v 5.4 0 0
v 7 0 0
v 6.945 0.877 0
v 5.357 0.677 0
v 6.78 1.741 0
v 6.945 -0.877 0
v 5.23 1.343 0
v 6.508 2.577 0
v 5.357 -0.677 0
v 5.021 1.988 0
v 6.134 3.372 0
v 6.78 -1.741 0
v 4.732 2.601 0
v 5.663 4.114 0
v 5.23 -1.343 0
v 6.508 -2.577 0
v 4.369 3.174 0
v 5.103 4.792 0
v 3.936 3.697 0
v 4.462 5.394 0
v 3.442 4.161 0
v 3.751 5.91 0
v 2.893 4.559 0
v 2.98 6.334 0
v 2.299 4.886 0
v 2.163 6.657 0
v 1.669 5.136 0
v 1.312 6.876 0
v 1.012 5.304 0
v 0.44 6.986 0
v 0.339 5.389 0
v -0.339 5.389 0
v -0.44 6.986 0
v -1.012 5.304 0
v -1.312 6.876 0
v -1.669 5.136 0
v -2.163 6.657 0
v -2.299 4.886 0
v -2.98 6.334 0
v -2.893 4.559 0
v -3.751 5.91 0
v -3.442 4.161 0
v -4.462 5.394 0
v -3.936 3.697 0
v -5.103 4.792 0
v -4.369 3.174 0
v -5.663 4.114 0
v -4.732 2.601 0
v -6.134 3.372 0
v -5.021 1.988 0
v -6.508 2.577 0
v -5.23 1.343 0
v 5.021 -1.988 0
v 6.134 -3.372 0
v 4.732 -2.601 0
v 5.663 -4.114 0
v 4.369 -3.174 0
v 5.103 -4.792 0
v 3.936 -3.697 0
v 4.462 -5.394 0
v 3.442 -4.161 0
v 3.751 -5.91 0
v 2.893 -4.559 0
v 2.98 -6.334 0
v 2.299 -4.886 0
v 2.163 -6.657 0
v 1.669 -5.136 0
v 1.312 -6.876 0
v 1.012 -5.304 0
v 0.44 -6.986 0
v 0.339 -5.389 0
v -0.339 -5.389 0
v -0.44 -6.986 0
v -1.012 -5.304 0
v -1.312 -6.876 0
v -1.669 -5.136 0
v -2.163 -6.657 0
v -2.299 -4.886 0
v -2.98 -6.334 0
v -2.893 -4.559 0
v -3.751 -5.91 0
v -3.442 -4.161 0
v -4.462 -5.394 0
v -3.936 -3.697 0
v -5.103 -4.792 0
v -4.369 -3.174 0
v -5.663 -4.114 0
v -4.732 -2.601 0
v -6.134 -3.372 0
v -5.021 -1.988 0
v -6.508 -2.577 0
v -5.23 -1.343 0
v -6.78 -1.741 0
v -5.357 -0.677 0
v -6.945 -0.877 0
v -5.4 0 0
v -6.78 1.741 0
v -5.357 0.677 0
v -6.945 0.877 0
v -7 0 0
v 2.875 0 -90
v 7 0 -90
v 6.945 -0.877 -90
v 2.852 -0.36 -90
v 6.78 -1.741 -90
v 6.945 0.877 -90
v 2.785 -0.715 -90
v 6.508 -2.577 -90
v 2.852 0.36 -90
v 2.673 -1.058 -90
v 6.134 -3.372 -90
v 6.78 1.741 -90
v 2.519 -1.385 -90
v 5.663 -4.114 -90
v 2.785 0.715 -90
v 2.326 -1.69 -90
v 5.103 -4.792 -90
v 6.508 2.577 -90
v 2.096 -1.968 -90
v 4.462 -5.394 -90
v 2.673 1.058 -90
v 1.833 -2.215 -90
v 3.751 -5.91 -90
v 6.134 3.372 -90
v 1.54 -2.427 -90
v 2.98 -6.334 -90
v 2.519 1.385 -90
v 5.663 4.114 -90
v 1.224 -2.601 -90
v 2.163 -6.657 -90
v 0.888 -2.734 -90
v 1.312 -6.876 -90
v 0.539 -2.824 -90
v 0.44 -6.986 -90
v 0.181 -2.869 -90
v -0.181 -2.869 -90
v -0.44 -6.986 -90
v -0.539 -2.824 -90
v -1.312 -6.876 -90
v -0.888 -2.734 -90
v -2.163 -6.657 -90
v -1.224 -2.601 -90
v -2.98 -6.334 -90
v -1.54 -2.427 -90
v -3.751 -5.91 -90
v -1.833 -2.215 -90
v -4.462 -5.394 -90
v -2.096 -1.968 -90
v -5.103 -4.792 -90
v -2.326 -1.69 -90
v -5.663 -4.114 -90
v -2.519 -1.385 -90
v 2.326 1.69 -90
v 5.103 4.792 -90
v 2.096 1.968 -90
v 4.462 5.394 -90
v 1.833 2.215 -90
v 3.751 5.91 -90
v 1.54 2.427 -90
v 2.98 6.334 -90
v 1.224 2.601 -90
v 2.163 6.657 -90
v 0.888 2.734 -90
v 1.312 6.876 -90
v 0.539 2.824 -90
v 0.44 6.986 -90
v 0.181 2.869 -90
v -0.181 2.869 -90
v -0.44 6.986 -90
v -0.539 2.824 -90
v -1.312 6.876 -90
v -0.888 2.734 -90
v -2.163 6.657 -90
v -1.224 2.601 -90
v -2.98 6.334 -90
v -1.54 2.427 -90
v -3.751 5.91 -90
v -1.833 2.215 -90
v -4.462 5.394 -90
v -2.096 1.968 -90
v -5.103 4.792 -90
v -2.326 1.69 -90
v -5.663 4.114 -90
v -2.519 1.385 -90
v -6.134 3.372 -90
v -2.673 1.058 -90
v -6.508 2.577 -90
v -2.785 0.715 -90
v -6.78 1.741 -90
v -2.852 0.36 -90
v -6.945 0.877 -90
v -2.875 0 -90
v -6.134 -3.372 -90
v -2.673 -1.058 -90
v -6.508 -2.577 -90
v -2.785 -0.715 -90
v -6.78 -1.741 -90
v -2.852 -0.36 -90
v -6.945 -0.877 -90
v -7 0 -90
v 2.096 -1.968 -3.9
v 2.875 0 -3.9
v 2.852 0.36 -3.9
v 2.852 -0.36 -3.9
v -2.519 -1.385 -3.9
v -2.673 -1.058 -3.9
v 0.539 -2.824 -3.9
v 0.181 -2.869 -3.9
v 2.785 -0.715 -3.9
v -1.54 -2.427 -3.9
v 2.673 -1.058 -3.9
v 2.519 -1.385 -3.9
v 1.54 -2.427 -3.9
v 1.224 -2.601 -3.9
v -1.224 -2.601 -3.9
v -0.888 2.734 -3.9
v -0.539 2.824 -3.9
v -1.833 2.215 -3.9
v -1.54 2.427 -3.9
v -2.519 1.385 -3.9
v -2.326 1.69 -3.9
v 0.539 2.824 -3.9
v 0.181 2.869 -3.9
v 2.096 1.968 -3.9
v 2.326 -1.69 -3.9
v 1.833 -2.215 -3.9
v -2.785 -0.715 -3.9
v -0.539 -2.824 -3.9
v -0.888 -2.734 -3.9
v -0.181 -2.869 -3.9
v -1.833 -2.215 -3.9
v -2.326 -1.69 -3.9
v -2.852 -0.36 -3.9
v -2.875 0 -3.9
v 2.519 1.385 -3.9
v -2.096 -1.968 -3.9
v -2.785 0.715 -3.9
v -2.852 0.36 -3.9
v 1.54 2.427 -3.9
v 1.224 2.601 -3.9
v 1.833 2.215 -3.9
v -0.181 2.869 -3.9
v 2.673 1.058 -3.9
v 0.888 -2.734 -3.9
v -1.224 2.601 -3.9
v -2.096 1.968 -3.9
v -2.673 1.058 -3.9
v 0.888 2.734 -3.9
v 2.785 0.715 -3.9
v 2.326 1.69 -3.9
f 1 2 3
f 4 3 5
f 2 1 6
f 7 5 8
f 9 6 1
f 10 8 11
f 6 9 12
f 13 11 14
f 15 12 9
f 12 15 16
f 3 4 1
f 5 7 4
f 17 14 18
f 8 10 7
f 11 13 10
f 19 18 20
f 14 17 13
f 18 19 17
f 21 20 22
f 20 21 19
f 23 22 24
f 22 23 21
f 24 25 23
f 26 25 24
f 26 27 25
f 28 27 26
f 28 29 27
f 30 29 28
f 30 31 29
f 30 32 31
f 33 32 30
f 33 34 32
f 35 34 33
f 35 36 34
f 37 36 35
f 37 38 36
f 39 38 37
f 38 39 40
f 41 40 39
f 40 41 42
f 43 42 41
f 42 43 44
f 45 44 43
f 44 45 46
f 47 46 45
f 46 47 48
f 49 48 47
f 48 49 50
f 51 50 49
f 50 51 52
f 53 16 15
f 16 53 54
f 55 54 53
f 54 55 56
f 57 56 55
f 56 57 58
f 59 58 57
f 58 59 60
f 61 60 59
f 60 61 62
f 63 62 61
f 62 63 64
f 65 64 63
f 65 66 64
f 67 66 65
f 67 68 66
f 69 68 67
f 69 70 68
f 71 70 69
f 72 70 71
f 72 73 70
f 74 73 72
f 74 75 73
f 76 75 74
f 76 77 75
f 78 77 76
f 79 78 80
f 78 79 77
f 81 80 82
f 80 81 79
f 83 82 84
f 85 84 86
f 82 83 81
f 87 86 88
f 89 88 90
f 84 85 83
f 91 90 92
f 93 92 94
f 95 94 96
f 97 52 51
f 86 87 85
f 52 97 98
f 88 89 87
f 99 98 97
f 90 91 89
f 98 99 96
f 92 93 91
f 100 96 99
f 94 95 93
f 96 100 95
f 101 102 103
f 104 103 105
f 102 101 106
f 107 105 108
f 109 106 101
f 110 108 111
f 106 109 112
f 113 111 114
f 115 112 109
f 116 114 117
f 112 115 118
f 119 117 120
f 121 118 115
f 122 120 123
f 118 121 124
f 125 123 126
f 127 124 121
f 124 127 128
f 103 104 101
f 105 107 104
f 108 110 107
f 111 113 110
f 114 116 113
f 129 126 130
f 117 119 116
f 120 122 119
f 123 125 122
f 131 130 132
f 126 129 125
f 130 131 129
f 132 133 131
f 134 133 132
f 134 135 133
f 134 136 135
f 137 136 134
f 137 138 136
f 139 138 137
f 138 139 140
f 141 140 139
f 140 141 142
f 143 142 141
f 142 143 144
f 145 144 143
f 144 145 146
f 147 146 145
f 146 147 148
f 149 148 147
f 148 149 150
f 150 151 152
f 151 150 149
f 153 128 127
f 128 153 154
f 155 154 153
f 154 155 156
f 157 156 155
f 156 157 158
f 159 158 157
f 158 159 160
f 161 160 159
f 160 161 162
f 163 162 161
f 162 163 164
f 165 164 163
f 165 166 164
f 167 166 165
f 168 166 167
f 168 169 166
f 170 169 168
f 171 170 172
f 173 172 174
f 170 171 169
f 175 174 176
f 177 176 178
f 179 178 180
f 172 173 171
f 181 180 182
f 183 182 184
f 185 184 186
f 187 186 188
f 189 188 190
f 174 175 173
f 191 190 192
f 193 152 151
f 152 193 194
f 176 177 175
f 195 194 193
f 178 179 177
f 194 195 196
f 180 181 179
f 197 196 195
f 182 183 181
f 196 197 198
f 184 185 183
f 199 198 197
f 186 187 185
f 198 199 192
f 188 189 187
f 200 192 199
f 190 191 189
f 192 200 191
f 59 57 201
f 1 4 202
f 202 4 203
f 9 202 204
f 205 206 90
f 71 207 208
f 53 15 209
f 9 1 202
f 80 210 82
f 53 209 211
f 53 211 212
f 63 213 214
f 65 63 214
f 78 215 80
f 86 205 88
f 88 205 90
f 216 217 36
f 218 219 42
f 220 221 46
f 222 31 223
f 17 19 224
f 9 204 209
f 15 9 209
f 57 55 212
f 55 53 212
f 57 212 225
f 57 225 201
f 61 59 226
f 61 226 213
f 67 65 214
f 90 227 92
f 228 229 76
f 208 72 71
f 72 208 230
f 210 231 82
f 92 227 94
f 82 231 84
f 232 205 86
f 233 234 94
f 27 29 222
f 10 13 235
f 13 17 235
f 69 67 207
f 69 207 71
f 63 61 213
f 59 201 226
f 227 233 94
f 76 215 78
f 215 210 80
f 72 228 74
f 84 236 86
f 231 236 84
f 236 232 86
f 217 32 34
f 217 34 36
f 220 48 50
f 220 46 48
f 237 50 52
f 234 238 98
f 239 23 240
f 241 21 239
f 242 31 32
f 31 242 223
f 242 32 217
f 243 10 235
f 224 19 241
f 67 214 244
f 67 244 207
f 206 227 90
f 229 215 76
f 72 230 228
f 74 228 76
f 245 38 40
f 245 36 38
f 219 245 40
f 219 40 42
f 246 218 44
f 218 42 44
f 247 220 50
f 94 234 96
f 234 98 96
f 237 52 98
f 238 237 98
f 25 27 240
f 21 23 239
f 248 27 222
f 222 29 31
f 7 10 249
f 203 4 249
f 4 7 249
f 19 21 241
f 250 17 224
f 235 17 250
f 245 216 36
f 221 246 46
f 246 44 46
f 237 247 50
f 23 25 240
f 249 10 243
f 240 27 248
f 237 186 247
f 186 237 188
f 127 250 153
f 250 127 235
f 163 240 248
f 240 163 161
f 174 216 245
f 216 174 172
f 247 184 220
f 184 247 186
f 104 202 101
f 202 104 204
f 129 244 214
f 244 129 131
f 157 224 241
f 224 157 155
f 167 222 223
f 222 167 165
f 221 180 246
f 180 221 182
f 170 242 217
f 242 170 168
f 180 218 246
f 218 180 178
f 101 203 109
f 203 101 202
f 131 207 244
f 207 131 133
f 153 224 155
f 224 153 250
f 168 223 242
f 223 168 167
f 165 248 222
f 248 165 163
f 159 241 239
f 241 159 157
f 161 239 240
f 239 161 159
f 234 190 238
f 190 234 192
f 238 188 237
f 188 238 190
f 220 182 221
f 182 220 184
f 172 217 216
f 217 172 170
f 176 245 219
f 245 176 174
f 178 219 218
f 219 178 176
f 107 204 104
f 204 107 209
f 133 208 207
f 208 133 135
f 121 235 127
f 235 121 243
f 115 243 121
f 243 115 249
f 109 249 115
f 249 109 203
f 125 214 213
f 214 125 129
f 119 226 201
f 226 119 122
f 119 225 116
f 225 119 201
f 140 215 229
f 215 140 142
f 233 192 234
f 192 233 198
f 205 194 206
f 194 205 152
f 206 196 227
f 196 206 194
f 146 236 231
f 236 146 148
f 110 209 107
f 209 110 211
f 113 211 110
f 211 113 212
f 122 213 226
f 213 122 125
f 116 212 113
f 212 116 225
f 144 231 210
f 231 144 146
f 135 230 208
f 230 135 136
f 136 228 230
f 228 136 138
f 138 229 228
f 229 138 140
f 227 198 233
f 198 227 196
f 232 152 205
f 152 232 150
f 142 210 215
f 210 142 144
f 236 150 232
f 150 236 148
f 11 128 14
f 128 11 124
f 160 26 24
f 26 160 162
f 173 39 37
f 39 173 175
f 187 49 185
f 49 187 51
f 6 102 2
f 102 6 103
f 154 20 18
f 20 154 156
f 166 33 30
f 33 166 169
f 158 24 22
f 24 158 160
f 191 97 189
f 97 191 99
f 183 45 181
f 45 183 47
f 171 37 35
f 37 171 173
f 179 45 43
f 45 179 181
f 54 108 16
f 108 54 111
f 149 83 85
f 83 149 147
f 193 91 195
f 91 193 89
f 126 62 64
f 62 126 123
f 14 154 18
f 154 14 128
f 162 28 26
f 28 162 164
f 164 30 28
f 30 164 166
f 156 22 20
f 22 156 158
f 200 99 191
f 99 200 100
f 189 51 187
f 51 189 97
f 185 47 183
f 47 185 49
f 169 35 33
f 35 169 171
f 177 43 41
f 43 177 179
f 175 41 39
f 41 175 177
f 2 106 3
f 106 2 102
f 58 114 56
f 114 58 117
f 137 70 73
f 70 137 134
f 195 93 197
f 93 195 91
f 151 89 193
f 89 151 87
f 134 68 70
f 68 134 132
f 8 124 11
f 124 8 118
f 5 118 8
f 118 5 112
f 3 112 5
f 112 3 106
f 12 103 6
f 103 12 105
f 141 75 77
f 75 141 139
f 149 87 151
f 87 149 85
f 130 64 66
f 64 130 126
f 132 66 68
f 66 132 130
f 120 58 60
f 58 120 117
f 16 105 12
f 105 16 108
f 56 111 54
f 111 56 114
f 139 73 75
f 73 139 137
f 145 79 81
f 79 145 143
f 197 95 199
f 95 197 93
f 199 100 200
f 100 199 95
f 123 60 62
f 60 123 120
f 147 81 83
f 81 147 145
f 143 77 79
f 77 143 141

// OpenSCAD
$fn = 50;


difference() {
	union() {
		translate(v = [0, 0, -90.0000000000]) {
			cylinder(h = 90, r = 7.0000000000);
		}
		cylinder(h = 0, r = 10.0000000000);
	}
	union() {
		translate(v = [0, 0, 0]) {
			rotate(a = [0, 0, 0]) {
				difference() {
					union() {
						#translate(v = [0, 0, -90.0000000000]) {
							cylinder(h = 90, r = 2.6000000000);
						}
						#translate(v = [0, 0, -3.9000000000]) {
							cylinder(h = 3.9000000000, r = 7.0000000000, r1 = 2.8750000000, r2 = 5.4000000000);
						}
						#translate(v = [0, 0, -90.0000000000]) {
							cylinder(h = 90, r = 2.8750000000);
						}
						#translate(v = [0, 0, -90.0000000000]) {
							cylinder(h = 90, r = 2.6000000000);
						}
					}
					union();
				}
			}
		}
	}
}
